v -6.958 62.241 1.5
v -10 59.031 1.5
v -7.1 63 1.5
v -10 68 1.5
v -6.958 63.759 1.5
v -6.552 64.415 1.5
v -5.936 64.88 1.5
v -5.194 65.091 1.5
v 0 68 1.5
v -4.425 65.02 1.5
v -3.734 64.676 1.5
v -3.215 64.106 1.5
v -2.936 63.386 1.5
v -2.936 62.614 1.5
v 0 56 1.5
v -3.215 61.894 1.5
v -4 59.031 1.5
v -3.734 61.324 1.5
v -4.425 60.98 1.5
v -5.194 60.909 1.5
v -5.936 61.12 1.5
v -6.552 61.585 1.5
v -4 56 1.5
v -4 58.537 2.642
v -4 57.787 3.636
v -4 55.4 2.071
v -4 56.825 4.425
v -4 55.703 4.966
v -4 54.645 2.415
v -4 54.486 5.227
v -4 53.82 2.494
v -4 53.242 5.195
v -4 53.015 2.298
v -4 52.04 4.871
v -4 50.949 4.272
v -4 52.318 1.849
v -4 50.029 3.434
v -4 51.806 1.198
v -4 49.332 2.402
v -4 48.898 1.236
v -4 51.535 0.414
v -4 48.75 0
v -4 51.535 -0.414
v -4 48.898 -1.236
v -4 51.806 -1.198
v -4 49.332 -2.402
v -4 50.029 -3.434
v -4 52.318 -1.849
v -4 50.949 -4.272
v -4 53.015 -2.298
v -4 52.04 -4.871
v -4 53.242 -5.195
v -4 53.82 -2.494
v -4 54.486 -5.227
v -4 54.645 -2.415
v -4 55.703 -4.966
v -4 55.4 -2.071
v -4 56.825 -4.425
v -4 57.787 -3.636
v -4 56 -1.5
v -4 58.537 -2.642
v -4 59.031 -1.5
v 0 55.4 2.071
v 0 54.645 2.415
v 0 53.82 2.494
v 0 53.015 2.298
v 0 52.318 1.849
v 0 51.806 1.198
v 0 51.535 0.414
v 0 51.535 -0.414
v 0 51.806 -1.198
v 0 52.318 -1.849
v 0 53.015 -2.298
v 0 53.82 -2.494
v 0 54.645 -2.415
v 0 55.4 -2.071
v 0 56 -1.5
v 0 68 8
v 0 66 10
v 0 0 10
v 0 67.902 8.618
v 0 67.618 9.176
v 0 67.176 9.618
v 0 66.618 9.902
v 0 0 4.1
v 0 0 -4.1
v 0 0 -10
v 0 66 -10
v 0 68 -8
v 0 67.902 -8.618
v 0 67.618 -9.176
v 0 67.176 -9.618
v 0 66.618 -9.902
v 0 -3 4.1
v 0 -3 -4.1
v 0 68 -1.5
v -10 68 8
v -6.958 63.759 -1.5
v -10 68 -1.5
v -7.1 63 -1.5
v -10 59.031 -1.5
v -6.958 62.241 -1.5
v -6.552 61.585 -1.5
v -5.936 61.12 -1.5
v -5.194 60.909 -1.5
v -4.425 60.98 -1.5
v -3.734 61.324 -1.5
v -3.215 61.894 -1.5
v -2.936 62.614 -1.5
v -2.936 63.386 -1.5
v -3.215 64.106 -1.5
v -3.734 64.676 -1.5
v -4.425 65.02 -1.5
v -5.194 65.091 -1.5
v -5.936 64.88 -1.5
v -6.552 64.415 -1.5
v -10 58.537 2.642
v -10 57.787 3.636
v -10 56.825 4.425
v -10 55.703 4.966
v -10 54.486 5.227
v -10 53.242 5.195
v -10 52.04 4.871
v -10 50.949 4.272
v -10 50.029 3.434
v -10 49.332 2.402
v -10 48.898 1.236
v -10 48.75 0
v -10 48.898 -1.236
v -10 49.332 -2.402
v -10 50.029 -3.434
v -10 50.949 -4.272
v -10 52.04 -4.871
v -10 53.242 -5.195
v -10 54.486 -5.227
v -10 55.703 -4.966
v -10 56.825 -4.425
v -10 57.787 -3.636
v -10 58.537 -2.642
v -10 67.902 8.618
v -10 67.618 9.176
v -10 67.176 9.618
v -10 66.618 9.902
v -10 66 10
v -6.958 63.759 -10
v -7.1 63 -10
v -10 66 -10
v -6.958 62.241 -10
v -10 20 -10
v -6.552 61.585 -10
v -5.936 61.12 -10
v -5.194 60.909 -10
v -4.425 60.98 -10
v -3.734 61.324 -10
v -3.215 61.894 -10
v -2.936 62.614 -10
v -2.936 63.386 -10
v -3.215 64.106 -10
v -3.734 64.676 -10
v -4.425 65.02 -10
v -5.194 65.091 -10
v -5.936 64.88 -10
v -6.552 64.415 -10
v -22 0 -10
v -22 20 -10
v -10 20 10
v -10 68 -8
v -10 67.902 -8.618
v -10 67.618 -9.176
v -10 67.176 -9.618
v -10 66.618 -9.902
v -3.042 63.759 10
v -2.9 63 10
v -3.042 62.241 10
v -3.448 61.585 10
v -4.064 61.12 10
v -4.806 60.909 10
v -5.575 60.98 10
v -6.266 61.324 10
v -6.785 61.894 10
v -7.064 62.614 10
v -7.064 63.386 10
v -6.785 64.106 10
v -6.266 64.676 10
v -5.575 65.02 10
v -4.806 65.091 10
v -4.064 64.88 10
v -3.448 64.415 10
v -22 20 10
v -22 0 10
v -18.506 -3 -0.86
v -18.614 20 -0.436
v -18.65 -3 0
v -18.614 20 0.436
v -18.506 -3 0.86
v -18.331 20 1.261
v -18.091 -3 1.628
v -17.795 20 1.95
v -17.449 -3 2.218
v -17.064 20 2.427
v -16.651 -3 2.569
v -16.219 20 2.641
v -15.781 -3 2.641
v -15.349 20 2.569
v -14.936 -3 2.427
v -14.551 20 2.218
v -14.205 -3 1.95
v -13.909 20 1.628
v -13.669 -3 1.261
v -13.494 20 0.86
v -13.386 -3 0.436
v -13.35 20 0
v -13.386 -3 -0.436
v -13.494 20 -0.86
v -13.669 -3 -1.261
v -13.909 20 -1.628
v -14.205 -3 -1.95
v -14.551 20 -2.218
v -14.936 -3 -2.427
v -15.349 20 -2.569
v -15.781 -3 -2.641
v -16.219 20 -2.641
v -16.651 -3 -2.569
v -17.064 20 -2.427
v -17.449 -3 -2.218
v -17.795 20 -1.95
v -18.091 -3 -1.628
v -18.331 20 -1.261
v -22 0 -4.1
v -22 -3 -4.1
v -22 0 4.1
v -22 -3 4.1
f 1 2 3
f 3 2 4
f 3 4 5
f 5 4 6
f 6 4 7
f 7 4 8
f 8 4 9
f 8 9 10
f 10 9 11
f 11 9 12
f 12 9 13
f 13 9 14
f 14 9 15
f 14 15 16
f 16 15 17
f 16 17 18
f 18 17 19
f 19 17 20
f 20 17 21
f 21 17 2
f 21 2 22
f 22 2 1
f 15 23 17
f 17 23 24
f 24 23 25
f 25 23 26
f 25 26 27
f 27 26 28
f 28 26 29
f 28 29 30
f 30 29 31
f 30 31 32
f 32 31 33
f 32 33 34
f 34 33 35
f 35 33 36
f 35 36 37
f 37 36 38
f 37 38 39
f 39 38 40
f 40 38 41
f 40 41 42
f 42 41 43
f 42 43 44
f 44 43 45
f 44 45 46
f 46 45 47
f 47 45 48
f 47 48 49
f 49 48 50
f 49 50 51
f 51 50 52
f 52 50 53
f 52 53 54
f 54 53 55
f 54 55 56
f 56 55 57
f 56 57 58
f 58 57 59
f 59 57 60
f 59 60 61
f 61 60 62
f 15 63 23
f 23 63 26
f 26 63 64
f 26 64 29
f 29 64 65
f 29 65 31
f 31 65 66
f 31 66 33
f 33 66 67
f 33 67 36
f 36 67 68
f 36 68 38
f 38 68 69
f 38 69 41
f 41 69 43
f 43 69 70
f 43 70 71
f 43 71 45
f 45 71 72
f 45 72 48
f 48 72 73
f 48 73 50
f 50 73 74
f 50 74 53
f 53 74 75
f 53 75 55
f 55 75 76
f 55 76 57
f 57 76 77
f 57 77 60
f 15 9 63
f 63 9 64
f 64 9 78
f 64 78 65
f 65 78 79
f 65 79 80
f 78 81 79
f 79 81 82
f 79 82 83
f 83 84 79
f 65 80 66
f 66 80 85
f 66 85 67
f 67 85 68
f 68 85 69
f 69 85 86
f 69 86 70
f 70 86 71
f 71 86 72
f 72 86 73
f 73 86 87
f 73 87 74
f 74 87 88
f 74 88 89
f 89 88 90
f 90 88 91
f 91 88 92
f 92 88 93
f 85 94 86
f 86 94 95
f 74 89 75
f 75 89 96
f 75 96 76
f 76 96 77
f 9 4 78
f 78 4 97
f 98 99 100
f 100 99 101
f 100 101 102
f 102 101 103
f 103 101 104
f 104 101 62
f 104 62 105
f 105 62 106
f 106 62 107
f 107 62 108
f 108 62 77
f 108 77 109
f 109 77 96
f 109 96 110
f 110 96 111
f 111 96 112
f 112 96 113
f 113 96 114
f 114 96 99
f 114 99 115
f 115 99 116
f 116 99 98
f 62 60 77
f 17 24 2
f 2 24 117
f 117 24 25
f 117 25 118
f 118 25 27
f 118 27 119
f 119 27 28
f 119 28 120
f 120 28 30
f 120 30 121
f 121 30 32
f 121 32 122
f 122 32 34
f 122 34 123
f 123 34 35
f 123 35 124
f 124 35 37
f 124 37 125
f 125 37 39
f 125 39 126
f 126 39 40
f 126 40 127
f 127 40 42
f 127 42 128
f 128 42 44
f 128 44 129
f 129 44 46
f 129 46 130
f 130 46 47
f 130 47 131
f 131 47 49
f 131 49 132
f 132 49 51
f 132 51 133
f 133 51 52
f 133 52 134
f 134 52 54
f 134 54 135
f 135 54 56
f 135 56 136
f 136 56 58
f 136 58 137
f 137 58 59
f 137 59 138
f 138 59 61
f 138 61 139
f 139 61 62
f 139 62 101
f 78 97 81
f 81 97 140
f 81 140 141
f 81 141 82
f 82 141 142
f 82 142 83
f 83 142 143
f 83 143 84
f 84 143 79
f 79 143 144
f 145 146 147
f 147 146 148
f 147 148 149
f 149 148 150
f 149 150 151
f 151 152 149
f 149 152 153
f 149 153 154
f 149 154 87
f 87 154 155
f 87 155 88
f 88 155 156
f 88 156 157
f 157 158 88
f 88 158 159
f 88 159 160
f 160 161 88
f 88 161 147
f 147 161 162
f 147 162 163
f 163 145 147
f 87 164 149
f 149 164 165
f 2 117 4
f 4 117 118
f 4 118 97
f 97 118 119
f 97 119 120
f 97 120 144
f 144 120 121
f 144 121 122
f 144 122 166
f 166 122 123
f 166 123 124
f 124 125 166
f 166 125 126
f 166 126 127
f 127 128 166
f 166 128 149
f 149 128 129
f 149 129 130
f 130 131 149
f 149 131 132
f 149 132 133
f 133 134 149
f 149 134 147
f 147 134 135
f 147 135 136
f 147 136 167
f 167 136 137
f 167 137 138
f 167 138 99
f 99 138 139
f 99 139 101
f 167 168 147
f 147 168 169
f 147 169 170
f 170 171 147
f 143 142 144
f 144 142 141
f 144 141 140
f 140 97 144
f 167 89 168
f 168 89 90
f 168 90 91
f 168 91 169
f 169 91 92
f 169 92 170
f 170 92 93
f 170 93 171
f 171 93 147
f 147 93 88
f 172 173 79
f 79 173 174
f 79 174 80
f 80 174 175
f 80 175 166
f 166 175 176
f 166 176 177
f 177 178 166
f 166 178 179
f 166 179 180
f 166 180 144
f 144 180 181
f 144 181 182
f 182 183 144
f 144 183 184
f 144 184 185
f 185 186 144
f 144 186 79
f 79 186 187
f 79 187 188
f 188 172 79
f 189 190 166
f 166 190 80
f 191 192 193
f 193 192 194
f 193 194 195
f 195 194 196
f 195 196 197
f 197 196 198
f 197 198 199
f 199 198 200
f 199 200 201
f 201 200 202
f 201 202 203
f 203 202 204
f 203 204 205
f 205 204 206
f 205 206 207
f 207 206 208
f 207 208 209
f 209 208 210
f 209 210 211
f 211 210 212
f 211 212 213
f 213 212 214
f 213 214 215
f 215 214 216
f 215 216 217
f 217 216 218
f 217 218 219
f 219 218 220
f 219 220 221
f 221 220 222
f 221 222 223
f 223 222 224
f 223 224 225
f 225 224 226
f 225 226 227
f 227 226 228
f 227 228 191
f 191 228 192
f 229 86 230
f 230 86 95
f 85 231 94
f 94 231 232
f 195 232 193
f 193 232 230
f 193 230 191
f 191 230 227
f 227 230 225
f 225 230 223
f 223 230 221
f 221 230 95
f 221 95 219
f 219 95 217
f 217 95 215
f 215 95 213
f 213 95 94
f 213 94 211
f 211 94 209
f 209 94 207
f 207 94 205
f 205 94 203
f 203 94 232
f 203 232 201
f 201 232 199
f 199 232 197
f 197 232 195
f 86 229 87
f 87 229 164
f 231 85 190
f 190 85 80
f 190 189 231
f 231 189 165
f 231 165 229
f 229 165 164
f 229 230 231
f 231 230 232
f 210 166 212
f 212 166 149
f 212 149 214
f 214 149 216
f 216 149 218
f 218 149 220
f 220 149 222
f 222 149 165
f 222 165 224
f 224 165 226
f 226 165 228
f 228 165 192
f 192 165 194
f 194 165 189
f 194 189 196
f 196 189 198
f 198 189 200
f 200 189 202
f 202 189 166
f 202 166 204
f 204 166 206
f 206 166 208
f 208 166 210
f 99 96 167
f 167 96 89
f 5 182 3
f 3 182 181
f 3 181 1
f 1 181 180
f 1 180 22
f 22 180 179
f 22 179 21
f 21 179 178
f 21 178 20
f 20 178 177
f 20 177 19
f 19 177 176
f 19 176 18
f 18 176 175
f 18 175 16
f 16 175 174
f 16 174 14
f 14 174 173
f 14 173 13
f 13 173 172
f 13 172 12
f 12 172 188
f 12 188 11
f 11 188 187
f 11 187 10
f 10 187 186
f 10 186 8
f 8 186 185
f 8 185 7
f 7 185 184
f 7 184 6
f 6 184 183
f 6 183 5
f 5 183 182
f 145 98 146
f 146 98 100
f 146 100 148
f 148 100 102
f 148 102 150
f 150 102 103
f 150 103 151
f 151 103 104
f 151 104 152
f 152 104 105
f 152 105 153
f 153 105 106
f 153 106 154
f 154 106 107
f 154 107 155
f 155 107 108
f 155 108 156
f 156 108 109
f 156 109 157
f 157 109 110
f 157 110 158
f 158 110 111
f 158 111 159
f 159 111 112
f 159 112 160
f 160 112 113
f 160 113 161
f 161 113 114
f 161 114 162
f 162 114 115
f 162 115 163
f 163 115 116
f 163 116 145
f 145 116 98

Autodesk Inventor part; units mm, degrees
ref_plane "YZ Plane" through (0, 0, 0) normal (1, 0, 0) x (0, 1, 0)
ref_plane "XZ Plane" through (0, 0, 0) normal (0, 1, 0) x (-1, 0, 0)
ref_plane "XY Plane" through (0, 0, 0) normal (0, 0, 1) x (1, 0, 0)
sketch "Sketch1" plane through (0, 0, 0) normal (0, 0, 1) x (1, 0, 0)
  line L0 (-26.4, 0) -> (4.4, 0) construction
  line L1 (0, -28.2297) -> (0, 100.056) construction
  line L2 (0, 0) -> (-22, 0)
  line L3 (-22, 0) -> (-22, 20)
  line L4 (-22, 20) -> (-10, 20)
  line L5 (-10, 20) -> (-10, 68)
  line L6 (-10, 68) -> (0, 68)
  line L7 (0, 68) -> (0, 0)
  dimension "d0" = 68
  dimension "d1" = 10
  dimension "d2" = 22
  dimension "d3" = 20
extrude "Extrusion1" add sketch "Sketch1" along normal mid plane 20
sketch "Sketch2" plane through (-22, 0, 10) normal (0, -1, 0) x (1, 0, 0)
  line L0 (-4.4, -10) -> (26.4, -10) construction
  line L1 (22, -24) -> (22, 4) construction
  line L2 (0, 0) -> (0, -20) construction
  line L3 (0, -5.9) -> (22, -5.9)
  line L4 (22, -5.9) -> (22, -14.1)
  line L5 (22, -14.1) -> (0, -14.1)
  line L6 (0, -14.1) -> (0, -5.9)
  point P0 (22, -10)
  point P1 (22, -10)
  dimension "d6" = 8.2
extrude "Extrusion2" add sketch "Sketch2" along normal blind 3
sketch "Sketch4" plane through (-22, 20, 10) normal (0, 1, 0) x (1, 0, 0)
  line L0 (-4.4, 10) -> (26.4, 10) projected
  line L1 (22, 24) -> (22, -4) projected
  point P0 (22, 10)
  point P1 (6, 10)
  dimension "d18" = 16
hole "Hole2" at (-16, 20, 0) direction (0, -1, 0) diameter 5.3 end through all
sketch "Esquisse5" plane through (-10, 20, -10) normal (-1, 0, 0) x (0, 0, 1)
  line L0 (10, -33.1749) -> (10, 52.2673)
  line L1 (5.9, -20) -> (0, -20) projected
  point P0 (10, -20)
  point P1 (10, 34)
  dimension "d28" = 54
hole "Perçage3" at (-10, 54, 0) direction (1, 0, 0) diameter 5 end through all
fillet "Congé2" radius 2 1 edges at (-5, 68, -10)
fillet "Congé3" radius 2 1 edges at (-5, 68, 10)
sketch "Esquisse6" plane through (-10, 20, -10) normal (-1, 0, 0) x (0, 0, 1)
  line L0 (10, -28.7649) -> (10, 59.9082)
  line L1 (5.9, -20) -> (0, -20) projected
  point P0 (10, -20)
  point P1 (10, 34)
  dimension "d38" = 54
hole "Perçage4" at (-10, 54, 0) direction (1, 0, 0) diameter 10.5 depth 6
sketch "Esquisse8" plane through (-10, 20, -10) normal (-1, 0, 0) x (0, 0, 1)
  line L0 (10, -28.9396) -> (10, 64.2926)
  line L1 (10, 34) -> (8.5, 34)
  line L2 (8.5, 34) -> (8.5, 50.8033)
  line L3 (8.5, 50.8033) -> (10, 50.8033)
  line L4 (5.9, -20) -> (0, -20) projected
  line L5 (20, 46) -> (20, 0) projected
  line L6 (10, 34) -> (10, 50.8033)
  point P0 (10, -20)
  dimension "d50" = 54
  dimension "d51" = 3
  dimension "d52" = 10
  dimension "d53" = 16.8033
  dimension "d54" = 8.9396
  dimension "d55" = 93.2322
extrude "Extrusion3" cut sketch "Esquisse8" against normal through all
mirror "Symétrie1" about plane through (-10, 70.8033, 0) normal (0, 0, -1) of "Extrusion3"
sketch "Esquisse9" plane through (0, 0, 10) normal (0, 0, 1) x (1, 0, 0)
  line L0 (-10, 66) -> (-10, 20) projected
  line L1 (-22, 0) -> (0, 0) projected
  point P0 (-5, 63)
  dimension "d58" = 5
  dimension "d59" = 63
hole "Perçage5" at (-5, 63, 10) direction (0, 0, -1) diameter 4.2 end through all
properties part number "P116SupportFibre" material "ABS"
